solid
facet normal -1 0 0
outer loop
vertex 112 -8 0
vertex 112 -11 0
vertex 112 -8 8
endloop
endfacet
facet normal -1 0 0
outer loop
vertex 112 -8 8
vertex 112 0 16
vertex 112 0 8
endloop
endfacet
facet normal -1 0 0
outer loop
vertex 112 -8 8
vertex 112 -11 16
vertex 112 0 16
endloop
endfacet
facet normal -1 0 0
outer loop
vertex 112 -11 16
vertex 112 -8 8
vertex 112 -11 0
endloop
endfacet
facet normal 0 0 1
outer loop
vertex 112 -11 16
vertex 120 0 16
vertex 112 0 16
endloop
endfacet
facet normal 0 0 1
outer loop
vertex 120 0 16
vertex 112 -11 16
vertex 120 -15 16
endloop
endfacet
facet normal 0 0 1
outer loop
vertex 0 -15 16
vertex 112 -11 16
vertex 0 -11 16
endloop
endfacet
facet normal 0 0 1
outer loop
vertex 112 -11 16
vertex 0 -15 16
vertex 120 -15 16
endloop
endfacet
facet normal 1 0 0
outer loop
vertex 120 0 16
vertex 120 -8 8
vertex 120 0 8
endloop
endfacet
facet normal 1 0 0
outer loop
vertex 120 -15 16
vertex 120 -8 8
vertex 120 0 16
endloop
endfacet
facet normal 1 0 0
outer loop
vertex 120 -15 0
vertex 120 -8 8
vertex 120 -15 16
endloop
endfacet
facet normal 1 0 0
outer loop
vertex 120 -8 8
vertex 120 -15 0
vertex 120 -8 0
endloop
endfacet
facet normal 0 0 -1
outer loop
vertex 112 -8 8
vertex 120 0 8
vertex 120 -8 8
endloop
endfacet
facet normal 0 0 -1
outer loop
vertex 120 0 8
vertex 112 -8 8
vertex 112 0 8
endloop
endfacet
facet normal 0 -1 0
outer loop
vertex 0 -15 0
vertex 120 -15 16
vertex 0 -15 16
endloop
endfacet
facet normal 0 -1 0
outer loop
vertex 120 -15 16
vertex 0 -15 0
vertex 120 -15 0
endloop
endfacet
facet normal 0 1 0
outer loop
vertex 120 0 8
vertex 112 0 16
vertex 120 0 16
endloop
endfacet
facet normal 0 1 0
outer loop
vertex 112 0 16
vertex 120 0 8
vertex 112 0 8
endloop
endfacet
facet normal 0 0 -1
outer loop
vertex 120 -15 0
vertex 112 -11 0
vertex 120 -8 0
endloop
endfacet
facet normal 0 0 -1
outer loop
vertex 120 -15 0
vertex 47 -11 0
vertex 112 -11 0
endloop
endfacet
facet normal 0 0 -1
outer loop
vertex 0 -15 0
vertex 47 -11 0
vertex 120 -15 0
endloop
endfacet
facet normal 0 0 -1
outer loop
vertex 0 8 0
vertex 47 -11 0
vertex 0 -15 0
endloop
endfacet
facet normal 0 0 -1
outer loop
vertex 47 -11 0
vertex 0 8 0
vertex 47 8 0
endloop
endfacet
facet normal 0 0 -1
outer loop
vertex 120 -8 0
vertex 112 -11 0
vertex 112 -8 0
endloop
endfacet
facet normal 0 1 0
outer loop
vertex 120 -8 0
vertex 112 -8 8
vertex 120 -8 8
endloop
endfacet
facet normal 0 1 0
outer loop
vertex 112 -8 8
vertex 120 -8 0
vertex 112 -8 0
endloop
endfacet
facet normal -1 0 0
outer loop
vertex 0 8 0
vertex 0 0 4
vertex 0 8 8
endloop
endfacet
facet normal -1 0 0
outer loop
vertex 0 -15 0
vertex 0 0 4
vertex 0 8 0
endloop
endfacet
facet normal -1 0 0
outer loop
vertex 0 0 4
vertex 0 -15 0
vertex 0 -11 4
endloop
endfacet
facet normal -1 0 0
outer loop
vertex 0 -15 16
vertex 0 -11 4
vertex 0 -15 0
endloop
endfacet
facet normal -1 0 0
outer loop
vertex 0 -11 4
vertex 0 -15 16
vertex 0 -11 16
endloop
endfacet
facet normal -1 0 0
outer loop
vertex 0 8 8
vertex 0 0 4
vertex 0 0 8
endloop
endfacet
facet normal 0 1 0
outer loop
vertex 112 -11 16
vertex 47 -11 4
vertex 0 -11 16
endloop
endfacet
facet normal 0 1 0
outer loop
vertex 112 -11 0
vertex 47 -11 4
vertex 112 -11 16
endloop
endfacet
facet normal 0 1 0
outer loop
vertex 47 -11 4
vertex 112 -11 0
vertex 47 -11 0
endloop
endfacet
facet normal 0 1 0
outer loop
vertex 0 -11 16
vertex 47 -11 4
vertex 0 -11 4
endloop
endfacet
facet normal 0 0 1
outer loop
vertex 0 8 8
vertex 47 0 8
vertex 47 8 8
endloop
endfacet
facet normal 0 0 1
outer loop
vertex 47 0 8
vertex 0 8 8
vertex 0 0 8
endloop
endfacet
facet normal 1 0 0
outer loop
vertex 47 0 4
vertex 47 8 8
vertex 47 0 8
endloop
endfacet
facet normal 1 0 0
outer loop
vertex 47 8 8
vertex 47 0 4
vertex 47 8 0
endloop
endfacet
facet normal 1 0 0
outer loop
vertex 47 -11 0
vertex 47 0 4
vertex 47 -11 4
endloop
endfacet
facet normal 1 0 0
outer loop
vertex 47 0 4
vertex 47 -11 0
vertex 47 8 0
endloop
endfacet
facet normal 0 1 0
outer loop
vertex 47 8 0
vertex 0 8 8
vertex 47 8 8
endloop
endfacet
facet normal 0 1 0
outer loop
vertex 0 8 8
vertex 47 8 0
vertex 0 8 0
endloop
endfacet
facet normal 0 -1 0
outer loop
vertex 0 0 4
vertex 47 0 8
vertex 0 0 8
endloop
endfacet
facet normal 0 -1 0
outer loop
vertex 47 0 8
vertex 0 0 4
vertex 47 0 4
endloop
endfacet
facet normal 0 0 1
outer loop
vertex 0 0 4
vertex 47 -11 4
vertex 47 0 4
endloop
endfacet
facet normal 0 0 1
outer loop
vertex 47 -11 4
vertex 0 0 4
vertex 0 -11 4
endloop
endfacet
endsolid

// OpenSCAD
// outer width of the whole piece
width = 120;

// distance from the bottom of the last piece to the edge of the ipad
height = 12;

// distance from the bottom of the ipad to the corner of the mirror
x_height = 15;

// dimensions of the ipad support
ipad_width = 47;

// how big the frame itself will be
border_size = 8;


// ipad holder
/////////////////////////////////////////////////////////////////////////////

cube([ipad_width, border_size, border_size]);


// connections from the ipad holder to the bottom
/////////////////////////////////////////////////////////////////////////////

module connection() {
	cube([ipad_width, x_height, border_size / 2]);
}

translate([0,  x_height * -1, 0]) {
	connection();
}



// bottom structure
/////////////////////////////////////////////////////////////////////////////

translate([0, x_height * -1, 0]) {
	// right top (extends far)
	translate([width - border_size, 0, border_size]) {
		cube([border_size, x_height, border_size]);
	}

	// right bottom (extends less far)
	translate([width - border_size, 0, 0]) {
		cube([border_size, x_height - border_size, border_size]);
	}

	// bottom
	cube([width, border_size / 2, border_size * 2]);
}
